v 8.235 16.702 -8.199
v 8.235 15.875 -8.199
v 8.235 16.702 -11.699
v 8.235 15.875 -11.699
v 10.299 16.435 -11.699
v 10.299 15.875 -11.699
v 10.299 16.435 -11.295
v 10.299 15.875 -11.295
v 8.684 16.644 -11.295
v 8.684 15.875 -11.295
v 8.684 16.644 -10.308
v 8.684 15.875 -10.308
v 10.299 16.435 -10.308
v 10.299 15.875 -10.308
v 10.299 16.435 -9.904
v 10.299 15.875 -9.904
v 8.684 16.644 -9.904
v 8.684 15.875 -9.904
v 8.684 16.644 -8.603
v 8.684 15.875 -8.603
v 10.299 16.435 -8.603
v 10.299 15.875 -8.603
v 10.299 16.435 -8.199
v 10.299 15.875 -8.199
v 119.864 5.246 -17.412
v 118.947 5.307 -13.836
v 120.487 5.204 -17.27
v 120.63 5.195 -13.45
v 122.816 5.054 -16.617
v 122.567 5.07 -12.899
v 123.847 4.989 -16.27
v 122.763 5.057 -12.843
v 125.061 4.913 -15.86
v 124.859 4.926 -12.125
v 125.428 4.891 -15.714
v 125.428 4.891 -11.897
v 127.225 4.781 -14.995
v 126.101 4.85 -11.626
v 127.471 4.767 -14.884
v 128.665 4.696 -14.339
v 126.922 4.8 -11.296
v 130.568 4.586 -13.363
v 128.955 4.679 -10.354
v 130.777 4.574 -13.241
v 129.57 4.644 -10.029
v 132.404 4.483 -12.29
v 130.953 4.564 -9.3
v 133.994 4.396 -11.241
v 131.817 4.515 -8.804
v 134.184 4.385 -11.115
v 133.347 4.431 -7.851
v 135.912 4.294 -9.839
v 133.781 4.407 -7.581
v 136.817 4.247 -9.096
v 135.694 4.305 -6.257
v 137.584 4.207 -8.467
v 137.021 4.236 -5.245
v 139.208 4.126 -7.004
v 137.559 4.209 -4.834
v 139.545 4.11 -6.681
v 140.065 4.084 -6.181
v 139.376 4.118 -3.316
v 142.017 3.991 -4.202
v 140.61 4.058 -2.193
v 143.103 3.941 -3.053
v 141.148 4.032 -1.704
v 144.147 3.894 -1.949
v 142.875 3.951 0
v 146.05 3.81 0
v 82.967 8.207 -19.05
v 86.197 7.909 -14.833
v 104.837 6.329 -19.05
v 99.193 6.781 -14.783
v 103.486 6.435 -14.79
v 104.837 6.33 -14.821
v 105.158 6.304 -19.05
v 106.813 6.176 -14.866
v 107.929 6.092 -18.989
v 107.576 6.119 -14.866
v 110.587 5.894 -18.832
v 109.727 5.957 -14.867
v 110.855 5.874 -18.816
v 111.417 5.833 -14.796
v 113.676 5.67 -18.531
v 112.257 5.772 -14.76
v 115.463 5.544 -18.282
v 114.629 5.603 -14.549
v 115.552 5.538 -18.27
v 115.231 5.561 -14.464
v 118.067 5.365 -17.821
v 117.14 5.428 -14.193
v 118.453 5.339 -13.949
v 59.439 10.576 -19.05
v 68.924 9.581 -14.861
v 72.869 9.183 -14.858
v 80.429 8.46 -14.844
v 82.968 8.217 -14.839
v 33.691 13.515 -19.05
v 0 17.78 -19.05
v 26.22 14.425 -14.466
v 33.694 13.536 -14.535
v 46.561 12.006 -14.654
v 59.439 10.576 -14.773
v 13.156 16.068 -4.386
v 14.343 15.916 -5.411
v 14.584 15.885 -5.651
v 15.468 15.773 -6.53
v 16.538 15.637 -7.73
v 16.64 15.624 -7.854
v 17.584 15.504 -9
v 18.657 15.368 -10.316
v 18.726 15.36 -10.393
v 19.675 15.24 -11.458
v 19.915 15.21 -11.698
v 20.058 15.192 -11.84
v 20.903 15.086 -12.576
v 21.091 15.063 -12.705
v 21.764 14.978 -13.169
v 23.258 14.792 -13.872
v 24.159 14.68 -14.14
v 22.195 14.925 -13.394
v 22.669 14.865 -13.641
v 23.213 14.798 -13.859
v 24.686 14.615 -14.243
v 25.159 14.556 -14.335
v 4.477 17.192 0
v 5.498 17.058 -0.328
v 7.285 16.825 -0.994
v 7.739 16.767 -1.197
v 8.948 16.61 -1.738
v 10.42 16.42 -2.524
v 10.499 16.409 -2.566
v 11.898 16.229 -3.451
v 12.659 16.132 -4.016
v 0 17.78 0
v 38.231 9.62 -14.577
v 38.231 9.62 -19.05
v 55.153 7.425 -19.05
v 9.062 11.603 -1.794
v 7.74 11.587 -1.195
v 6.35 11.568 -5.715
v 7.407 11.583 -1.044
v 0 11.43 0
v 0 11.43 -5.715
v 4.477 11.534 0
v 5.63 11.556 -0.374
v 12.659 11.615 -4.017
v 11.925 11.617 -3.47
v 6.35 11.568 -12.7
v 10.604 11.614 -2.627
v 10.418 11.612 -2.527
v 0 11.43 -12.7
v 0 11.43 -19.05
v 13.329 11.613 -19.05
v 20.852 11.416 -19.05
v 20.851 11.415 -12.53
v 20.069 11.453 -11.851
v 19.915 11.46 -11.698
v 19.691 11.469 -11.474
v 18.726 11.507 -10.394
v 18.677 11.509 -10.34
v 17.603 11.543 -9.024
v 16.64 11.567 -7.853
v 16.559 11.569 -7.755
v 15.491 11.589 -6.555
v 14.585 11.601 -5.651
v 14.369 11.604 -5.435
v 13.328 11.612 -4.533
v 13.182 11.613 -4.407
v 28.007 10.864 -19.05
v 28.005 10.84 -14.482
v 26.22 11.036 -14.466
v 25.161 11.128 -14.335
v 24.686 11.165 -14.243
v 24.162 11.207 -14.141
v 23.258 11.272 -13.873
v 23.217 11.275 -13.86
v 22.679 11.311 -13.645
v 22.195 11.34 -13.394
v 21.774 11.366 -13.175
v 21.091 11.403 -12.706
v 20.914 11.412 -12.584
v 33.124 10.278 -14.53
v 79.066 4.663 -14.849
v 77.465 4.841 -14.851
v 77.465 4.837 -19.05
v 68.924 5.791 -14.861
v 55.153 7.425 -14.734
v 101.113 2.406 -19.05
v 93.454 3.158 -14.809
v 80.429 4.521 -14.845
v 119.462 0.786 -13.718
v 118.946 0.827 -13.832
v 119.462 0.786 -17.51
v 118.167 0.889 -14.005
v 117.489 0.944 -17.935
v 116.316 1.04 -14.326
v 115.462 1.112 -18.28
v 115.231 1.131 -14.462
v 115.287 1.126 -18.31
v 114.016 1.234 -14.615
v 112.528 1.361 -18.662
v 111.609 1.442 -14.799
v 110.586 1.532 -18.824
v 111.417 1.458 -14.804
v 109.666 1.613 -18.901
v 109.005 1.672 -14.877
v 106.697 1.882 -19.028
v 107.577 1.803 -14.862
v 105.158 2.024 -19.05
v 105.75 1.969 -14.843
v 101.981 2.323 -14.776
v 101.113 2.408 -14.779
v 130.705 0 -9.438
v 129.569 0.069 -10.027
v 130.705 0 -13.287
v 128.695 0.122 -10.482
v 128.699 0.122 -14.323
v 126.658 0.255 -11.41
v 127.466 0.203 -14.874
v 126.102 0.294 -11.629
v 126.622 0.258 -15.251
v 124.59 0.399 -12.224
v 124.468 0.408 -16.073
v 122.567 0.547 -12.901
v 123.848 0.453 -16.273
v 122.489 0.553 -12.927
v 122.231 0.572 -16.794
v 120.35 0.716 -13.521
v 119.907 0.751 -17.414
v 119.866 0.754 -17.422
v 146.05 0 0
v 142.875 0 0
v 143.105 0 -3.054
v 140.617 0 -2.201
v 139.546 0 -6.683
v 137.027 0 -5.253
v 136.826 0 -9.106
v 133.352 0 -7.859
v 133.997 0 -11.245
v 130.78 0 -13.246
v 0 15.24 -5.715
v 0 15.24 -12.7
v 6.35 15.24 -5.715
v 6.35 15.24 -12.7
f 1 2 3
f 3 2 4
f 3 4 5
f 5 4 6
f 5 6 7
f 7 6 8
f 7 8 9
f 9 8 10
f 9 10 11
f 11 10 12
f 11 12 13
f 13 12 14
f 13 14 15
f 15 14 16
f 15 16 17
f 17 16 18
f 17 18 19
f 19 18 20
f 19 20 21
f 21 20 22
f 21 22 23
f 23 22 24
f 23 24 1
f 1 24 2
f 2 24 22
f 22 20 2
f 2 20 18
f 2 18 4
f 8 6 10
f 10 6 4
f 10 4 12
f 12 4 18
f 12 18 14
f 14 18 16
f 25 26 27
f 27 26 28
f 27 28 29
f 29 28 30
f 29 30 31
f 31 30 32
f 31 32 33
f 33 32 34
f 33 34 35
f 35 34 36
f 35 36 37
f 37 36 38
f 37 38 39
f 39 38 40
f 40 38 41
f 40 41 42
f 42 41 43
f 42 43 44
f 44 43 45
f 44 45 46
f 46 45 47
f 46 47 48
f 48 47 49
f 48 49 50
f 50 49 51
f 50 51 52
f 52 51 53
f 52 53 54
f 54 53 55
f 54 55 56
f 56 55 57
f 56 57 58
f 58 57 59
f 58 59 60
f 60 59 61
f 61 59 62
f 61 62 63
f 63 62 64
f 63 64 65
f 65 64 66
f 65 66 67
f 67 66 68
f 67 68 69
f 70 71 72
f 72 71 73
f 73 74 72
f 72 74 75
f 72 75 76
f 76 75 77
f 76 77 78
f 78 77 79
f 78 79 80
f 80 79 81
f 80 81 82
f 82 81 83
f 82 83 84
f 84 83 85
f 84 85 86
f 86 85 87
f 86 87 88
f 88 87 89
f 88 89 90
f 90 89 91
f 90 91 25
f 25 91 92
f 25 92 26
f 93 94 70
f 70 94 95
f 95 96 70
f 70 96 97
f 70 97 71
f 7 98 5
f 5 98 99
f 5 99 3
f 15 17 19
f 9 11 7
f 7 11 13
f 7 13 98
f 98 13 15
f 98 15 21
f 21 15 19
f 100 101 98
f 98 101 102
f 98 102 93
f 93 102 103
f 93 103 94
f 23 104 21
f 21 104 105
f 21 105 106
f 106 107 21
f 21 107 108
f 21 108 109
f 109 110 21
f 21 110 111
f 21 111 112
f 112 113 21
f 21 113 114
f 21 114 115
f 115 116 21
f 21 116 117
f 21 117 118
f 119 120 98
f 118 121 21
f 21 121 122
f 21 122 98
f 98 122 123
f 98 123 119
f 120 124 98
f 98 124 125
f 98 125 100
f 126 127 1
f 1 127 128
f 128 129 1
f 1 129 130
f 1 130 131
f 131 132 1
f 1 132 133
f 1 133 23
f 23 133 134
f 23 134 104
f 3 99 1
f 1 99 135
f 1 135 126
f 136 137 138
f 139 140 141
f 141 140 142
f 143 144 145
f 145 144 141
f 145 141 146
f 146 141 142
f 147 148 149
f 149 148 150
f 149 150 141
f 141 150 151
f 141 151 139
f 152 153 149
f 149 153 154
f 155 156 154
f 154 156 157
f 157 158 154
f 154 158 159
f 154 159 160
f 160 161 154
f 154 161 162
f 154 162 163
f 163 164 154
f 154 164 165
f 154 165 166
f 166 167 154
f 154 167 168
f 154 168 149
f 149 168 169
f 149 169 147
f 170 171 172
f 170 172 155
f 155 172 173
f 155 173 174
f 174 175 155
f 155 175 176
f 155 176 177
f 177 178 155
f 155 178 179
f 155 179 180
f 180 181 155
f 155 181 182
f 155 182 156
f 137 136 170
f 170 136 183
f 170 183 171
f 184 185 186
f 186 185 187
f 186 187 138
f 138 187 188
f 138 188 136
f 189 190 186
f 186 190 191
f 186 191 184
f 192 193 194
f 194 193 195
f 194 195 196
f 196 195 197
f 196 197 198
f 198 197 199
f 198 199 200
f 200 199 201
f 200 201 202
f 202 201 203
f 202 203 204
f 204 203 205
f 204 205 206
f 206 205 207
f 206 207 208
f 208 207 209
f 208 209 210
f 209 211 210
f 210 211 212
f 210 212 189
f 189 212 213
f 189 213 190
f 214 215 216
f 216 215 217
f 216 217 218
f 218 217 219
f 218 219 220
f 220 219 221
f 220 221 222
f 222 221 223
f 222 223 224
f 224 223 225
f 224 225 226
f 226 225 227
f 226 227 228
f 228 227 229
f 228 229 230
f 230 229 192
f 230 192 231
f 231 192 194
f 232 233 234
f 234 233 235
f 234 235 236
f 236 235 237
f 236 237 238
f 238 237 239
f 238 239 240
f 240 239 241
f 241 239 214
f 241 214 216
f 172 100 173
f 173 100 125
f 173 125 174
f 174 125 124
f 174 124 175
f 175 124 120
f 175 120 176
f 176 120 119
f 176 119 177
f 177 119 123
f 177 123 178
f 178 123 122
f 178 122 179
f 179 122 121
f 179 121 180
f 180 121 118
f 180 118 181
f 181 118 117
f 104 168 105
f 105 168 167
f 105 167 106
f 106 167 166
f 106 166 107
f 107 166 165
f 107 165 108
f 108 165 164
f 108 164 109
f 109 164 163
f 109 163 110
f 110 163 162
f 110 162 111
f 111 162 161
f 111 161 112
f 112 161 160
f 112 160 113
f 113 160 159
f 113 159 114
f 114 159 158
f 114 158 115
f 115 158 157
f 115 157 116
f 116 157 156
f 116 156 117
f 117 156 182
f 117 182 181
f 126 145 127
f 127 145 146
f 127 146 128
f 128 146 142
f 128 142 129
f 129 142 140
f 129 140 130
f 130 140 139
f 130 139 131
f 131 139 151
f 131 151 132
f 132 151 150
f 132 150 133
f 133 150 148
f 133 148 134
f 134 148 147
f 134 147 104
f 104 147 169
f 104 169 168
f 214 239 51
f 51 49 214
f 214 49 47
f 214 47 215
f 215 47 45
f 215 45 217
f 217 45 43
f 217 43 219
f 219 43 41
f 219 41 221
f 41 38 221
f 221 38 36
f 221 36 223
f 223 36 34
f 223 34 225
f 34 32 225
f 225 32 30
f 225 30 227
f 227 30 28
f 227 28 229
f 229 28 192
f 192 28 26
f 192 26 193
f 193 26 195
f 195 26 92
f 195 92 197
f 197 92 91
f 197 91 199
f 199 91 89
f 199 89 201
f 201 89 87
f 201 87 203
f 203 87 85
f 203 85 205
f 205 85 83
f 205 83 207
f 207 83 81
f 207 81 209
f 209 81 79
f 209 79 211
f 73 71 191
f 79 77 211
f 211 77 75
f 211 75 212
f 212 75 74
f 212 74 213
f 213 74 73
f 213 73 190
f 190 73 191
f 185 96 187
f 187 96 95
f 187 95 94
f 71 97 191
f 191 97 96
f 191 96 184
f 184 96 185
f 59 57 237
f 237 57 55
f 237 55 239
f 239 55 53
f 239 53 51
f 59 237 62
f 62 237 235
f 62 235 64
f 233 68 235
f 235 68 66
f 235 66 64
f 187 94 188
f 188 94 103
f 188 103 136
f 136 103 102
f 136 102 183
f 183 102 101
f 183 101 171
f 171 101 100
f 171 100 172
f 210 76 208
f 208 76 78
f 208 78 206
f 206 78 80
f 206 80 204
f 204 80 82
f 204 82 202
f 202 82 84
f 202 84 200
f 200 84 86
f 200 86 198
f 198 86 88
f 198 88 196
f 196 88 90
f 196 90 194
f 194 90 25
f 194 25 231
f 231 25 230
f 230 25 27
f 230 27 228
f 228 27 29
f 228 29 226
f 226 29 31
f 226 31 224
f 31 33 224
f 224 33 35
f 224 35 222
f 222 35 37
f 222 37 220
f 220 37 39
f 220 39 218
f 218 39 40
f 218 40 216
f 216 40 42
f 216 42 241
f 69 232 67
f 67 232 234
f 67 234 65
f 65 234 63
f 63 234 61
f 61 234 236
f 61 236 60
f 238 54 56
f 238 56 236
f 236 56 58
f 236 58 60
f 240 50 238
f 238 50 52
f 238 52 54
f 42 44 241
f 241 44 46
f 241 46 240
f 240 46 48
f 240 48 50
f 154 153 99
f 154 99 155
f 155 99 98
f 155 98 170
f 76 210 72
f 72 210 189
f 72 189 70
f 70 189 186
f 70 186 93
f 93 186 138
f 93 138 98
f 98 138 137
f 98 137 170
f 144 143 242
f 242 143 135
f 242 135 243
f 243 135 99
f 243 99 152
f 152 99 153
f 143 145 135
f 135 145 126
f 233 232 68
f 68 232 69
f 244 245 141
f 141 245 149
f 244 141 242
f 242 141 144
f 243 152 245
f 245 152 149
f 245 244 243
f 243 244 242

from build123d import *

# Parameters (mm, degrees)
SKETCH1_W           = 146.05
SKETCH1_H           = 19.05
BOSS_EXTRUDE1_DEPTH = 17.78
CUT_EXTRUDE5_DEPTH  = 1.905
CUT_EXTRUDE2_DEPTH  = 19.05
CUT_EXTRUDE3_DEPTH  = 149.356440496
SKETCH5_W           = 6.985
SKETCH5_H           = 3.81
CUT_EXTRUDE4_DEPTH  = 6.35


with BuildPart() as part:
    # Sketch1 → Boss-Extrude1 (new body)
    with BuildSketch(Plane(origin=(0, 0, 0), x_dir=(1, 0, 0), z_dir=(0, 1, 0))):
        with Locations((73.025, 9.525)):
            Rectangle(SKETCH1_W, SKETCH1_H)
    extrude(amount=BOSS_EXTRUDE1_DEPTH)

    # Sketch6 → Cut-Extrude5 (cut)
    with BuildSketch(Plane(origin=(0, 17.78, 0), x_dir=(1, 0, 0), z_dir=(0, 1, 0))):
        Polygon((8.235244611, 11.699320572), (10.299347175, 11.699320572), (10.299347175, 11.295474418), (8.68396256, 11.295474418), (8.68396256, 10.308294931), (10.299347175, 10.308294931), (10.299347175, 9.904448777), (8.68396256, 9.904448777), (8.68396256, 8.603166726), (10.299347175, 8.603166726), (10.299347175, 8.199320572), (8.235244611, 8.199320572), align=None)
    extrude(amount=-CUT_EXTRUDE5_DEPTH, mode=Mode.SUBTRACT)

    # Sketch4 → Cut-Extrude2 (cut)
    with BuildSketch(Plane(origin=(0, 17.78, 0), x_dir=(1, 0, 0), z_dir=(0, 1, 0))):
        with BuildLine():
            add(Edge.make_bspline(
                [(4.476723392, 0), (17.725756487, 4.043101895), (17.090749047, 12.999753789), (25.262791442, 14.373397692), (26.219517358, 14.465775476)],
                knots=[0, 0, 0, 0, 0.256127126, 0.284585695, 0.284585695, 0.284585695, 0.284585695], degree=3))
            Line((4.476723392, 0), (142.875, 0))
            add(Edge.make_bspline(
                [(68.923918907, 14.861089556), (81.075041449, 14.855684794), (98.246564786, 14.797098309), (108.068516517, 14.713978549), (127.226778846, 16.049688466), (142.875, 0)],
                knots=[0.488488537, 0.488488537, 0.488488537, 0.488488537, 0.629203286, 0.700744717, 1, 1, 1, 1], degree=3))
            Line((68.923918907, 14.861089556), (26.219517358, 14.465775476))
        make_face()
        with BuildLine():
            add(Edge.make_bspline(
                [(105.157866441, 19.05), (131.491281961, 18.918345897), (139.296835945, 6.588803862), (146.05, 0)],
                knots=[0.010622627, 0.010622627, 0.010622627, 0.010622627, 1, 1, 1, 1], degree=3))
            Line((146.05, 0), (146.05, 19.05))
            Line((146.05, 19.05), (105.157866441, 19.05))
        make_face()
    extrude(amount=-CUT_EXTRUDE2_DEPTH, mode=Mode.SUBTRACT)

    # Sketch3 → Cut-Extrude3 (cut, through all)
    with BuildSketch(Plane(origin=(0, 0, -19.05), x_dir=(-1, 0, 0), z_dir=(0, 0, -1))):
        with BuildLine():
            Line((0, 0), (0, 11.43))
            add(Edge.make_bspline(
                [(0, 11.43), (-27.212978315, 12.141866266), (-25.699255583, 10.135880462), (-111.819871073, 1.097438505), (-130.705361789, 0)],
                knots=[0, 0, 0, 0, 0.551607579, 0.868087195, 0.868087195, 0.868087195, 0.868087195], degree=3))
            Line((-130.705361789, 0), (0, 0))
        make_face()
        with BuildLine():
            add(Edge.make_bspline(
                [(0, 17.78), (-48.481130749, 11.376451851), (-97.167750981, 5.912650085), (-146.05, 3.81)],
                knots=[0, 0, 0, 0, 1, 1, 1, 1], degree=3))
            Line((0, 17.78), (-146.05, 17.78))
            Line((-146.05, 17.78), (-146.05, 3.81))
        make_face()
    extrude(amount=-CUT_EXTRUDE3_DEPTH, mode=Mode.SUBTRACT)

    # Sketch5 → Cut-Extrude4 (cut)
    with BuildSketch(Plane.ZY):
        with Locations((-9.2075, 13.335)):
            Rectangle(SKETCH5_W, SKETCH5_H)
    extrude(amount=-CUT_EXTRUDE4_DEPTH, mode=Mode.SUBTRACT)


solid = part.part
